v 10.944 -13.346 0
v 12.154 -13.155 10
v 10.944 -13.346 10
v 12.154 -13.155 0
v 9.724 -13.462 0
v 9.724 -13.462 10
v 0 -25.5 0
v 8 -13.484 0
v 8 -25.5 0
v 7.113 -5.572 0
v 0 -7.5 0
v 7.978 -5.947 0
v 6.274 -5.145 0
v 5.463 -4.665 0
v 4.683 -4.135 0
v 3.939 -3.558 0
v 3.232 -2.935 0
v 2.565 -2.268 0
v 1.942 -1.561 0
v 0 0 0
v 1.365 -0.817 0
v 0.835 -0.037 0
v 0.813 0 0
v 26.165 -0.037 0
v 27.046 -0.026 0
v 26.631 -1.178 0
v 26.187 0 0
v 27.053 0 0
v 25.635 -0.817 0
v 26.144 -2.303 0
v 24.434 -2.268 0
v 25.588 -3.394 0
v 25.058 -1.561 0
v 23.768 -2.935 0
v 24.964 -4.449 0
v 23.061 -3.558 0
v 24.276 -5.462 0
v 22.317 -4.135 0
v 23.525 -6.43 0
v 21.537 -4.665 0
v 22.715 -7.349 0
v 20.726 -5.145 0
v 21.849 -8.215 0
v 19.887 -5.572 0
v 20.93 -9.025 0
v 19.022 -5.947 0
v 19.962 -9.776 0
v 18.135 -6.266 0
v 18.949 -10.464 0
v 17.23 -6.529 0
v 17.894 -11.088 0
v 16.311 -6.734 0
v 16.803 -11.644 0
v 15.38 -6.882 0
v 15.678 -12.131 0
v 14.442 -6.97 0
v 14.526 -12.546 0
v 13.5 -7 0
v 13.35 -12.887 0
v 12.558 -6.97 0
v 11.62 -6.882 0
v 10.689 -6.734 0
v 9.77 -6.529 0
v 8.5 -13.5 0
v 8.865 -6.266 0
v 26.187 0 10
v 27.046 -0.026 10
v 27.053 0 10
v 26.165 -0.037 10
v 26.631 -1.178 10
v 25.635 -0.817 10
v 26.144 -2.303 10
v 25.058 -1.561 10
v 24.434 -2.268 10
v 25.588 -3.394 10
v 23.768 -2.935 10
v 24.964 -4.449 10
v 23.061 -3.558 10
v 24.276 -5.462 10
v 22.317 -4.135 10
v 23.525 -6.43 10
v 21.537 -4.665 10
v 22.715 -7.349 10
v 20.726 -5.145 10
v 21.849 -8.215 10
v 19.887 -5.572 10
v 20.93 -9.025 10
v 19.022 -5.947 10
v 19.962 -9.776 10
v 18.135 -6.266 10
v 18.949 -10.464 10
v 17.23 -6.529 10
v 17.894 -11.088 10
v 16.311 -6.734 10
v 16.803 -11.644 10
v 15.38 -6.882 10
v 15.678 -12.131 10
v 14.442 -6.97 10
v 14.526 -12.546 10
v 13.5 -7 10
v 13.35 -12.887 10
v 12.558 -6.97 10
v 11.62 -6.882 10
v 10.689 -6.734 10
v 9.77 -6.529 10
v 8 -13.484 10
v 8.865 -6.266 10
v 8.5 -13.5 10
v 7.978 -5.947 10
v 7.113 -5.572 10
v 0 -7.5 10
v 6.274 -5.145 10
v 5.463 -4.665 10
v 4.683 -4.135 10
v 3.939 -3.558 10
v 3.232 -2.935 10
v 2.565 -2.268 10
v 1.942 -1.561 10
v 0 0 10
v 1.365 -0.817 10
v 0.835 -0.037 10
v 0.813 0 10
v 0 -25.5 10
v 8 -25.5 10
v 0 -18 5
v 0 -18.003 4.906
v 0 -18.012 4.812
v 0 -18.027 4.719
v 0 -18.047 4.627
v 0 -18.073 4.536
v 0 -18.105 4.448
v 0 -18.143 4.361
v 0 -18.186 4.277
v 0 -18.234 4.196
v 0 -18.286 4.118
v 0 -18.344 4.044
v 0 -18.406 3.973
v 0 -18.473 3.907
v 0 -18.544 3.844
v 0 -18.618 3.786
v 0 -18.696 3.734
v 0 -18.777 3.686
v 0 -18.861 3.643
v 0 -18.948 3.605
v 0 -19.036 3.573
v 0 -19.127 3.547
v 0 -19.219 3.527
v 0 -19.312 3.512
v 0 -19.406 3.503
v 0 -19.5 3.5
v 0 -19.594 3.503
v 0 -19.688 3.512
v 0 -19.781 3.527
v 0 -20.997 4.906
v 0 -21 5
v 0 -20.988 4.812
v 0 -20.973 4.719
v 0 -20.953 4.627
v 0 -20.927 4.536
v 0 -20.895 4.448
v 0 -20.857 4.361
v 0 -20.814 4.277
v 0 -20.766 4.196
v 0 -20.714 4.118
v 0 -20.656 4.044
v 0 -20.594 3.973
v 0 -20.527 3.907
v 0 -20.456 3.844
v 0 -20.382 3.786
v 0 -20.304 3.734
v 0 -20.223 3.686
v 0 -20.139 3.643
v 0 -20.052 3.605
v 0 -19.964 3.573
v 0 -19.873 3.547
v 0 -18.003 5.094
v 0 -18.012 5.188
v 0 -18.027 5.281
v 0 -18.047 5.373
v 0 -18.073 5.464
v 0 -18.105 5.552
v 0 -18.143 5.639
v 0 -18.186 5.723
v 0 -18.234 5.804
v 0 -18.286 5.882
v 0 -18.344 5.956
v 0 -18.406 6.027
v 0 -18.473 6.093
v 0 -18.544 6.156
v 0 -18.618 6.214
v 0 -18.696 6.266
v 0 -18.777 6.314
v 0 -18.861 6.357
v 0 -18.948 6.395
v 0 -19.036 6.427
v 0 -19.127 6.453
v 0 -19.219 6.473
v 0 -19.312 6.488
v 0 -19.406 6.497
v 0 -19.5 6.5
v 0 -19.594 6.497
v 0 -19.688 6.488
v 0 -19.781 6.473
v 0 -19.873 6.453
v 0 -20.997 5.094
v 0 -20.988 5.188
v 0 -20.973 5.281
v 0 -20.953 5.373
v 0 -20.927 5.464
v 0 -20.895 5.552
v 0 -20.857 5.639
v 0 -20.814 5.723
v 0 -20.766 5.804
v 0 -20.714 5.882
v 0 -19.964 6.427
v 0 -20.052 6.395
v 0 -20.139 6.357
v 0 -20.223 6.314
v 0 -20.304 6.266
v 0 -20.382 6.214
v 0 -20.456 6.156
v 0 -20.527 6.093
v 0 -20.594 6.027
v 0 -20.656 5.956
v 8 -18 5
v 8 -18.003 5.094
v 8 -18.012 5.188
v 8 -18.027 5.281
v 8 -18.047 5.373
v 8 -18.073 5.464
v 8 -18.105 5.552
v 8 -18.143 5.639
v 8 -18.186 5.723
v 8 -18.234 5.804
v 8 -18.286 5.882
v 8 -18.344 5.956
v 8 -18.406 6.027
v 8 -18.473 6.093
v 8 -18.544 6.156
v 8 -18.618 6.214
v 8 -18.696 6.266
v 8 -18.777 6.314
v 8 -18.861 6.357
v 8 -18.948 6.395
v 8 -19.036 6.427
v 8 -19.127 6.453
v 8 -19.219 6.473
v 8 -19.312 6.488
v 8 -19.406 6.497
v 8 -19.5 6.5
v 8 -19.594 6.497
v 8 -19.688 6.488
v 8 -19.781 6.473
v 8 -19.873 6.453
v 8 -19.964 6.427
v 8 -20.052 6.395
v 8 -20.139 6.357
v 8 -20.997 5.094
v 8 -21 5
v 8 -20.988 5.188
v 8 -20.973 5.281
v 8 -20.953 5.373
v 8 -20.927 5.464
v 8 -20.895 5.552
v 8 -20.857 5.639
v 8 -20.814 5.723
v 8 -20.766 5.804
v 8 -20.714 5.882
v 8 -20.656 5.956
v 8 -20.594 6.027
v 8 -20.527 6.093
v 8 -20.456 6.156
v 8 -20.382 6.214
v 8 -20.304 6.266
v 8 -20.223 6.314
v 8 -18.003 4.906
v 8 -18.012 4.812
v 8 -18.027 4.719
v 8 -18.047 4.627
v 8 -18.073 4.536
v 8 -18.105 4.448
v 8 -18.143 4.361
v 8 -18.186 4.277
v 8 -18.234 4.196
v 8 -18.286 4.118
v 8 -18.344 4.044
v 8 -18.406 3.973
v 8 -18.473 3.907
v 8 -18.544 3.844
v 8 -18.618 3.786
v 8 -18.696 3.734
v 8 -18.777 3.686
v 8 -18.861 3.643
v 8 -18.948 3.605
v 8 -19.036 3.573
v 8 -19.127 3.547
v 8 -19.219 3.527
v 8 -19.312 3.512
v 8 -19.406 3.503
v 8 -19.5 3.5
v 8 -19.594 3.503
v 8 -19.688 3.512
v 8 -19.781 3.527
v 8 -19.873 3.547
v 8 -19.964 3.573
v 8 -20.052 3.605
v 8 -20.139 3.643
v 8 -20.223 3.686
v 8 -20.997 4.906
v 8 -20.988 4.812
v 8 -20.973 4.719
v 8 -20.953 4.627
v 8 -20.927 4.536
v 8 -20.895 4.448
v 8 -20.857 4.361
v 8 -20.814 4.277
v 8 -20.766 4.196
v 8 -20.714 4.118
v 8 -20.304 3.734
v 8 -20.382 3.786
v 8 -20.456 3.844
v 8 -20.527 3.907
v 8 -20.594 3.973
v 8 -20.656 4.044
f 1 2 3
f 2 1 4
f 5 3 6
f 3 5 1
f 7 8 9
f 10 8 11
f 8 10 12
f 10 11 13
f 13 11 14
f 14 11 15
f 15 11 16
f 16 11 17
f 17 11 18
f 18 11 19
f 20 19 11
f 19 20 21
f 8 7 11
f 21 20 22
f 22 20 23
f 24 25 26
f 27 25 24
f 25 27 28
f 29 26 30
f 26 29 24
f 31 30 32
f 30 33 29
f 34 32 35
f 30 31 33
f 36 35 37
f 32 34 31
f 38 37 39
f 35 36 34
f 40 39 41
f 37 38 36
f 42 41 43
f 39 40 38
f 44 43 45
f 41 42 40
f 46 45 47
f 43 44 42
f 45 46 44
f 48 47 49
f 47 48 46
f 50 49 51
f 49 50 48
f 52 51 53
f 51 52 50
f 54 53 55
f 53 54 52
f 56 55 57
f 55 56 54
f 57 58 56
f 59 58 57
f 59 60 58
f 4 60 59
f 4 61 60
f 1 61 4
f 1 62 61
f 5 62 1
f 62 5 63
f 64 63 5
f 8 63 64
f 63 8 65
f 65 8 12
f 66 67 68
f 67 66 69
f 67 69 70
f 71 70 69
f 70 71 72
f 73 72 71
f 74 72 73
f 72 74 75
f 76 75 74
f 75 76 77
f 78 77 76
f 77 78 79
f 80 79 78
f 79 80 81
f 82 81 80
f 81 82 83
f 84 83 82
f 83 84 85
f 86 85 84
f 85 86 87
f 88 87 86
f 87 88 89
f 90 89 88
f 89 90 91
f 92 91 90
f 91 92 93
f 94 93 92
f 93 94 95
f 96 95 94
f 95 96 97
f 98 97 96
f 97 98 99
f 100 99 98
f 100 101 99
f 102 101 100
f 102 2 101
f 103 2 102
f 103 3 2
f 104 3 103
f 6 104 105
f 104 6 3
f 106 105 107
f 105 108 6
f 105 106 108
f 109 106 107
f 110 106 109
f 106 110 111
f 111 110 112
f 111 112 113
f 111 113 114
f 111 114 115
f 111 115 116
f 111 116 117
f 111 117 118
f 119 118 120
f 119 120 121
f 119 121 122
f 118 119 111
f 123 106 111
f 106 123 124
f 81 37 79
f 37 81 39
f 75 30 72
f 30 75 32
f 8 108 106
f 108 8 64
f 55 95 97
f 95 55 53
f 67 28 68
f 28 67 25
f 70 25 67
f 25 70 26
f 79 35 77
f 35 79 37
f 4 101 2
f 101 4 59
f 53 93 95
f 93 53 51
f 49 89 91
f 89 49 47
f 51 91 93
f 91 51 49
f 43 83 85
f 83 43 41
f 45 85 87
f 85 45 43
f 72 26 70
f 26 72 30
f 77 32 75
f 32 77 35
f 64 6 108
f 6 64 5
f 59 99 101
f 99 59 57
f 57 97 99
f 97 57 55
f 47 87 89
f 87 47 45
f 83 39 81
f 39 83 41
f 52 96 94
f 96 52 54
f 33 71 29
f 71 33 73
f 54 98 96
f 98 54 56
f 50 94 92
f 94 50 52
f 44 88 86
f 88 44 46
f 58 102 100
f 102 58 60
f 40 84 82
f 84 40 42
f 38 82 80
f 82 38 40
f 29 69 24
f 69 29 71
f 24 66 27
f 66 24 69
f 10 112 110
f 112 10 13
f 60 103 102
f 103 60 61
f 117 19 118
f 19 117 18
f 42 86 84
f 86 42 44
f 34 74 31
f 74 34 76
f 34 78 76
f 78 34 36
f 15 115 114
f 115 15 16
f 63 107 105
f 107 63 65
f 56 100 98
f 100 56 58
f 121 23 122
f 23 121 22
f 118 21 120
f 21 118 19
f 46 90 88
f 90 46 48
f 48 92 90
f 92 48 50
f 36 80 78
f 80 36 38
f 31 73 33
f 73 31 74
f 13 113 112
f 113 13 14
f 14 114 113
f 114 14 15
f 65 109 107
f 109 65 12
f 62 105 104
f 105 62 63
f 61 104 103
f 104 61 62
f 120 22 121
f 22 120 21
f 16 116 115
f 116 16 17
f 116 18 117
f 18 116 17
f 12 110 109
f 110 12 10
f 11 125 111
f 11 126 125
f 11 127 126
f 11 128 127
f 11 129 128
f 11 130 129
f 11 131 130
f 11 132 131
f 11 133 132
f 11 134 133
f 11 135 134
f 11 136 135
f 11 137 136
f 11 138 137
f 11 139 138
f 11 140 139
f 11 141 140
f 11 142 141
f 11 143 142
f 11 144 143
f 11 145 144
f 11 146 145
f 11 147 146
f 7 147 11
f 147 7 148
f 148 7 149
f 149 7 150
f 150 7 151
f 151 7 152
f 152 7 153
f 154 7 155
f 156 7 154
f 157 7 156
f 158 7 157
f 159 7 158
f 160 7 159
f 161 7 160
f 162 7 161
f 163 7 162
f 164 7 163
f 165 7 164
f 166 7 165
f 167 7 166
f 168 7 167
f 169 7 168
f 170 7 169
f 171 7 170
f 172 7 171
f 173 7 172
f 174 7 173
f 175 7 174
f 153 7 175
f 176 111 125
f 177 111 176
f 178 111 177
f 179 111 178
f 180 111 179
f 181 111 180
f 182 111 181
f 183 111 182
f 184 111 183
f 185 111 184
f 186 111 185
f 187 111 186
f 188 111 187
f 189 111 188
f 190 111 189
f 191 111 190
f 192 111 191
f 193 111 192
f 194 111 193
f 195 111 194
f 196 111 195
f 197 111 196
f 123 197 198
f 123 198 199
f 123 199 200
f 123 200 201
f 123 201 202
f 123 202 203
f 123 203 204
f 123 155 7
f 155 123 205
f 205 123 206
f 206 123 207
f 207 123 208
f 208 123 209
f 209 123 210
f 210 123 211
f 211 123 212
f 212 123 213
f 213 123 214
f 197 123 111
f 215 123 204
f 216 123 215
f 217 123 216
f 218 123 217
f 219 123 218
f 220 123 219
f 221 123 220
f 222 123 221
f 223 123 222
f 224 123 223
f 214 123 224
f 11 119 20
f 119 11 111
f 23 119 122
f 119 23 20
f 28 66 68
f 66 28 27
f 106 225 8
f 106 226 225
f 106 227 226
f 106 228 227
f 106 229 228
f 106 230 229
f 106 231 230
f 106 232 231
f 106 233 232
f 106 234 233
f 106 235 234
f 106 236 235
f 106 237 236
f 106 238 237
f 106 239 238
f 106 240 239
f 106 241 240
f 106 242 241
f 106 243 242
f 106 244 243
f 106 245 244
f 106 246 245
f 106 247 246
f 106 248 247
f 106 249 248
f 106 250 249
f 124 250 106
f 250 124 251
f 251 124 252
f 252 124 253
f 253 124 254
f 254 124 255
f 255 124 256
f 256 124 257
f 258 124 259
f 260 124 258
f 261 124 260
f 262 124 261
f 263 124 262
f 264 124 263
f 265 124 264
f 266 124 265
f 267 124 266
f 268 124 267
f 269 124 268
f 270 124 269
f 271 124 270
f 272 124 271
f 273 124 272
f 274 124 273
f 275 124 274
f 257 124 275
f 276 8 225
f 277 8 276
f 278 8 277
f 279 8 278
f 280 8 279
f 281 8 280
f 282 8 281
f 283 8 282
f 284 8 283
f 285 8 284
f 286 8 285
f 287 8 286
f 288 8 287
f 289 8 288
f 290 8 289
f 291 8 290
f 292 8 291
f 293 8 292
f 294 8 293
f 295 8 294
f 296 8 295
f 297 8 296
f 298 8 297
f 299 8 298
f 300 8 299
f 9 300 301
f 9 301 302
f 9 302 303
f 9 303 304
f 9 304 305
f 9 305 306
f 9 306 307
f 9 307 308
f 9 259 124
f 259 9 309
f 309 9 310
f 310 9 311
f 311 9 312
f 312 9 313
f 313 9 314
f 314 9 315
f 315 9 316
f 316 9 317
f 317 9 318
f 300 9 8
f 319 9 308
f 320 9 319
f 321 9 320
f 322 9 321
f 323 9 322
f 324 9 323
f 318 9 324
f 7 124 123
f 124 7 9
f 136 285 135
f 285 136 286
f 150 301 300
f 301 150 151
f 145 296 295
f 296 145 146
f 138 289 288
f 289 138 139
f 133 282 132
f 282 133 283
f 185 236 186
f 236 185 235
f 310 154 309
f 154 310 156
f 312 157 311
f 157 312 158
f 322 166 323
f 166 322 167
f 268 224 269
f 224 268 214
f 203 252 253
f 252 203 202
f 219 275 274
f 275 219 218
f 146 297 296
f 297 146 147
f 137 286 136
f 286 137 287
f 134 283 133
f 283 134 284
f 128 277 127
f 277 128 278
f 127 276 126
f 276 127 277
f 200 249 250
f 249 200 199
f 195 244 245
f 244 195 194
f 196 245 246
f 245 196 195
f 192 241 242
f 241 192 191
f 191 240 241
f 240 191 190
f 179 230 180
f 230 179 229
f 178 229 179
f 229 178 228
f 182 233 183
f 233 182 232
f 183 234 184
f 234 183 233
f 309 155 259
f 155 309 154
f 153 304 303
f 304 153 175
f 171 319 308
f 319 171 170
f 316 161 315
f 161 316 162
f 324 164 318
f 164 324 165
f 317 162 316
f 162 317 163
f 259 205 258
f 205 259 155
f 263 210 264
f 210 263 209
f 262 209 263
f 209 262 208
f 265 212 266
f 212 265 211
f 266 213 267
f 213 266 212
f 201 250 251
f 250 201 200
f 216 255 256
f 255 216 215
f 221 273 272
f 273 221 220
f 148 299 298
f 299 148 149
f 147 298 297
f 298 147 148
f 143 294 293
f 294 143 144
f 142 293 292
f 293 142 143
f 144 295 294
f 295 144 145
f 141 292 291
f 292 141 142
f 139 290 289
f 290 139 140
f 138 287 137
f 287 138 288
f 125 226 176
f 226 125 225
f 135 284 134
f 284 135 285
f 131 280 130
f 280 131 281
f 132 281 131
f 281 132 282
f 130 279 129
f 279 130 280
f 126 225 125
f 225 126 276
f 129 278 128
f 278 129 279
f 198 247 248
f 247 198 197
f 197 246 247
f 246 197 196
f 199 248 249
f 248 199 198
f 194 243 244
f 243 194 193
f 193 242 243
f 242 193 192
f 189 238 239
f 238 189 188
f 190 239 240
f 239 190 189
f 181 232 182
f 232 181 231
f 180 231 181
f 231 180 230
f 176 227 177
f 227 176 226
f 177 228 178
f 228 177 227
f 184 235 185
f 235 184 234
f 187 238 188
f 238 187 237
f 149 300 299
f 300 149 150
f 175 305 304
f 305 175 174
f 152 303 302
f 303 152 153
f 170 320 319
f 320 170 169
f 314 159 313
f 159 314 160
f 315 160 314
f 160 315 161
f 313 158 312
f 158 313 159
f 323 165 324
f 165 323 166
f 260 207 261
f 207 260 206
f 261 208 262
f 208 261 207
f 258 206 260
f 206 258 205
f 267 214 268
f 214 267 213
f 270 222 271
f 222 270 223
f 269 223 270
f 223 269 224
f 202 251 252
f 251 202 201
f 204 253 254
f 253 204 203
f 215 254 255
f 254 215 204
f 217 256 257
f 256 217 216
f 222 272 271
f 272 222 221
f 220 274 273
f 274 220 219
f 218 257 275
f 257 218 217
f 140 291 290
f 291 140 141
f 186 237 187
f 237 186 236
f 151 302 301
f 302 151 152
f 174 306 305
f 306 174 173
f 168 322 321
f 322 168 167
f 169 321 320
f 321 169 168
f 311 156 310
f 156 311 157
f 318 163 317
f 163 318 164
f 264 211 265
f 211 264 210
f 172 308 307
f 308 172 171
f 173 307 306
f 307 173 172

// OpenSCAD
$fn = 100;

// A very roughly designed trigger for the wand tip.
// Eyeballed from http://i961.photobucket.com/albums/ae97/Doug_Solo/2016%20Ghostbusters%20Venkman%20Hero%20Proton%20Pack/thrower_tip_compressed_banjo_zpslgass7nw.jpg (http://www.therpf.com/showthread.php?t=259249)

trigger_depth = 10;

difference() {
    trigger();
    
    // screw hole
    translate([-0.1,-25.5+6,trigger_depth/2])
    rotate([0,90,0])
    cylinder(d=3,h=12.2);
}
//translate([0,-25.5,0])
//color("blue") cube([8,12,trigger_depth]);
module trigger() {
    difference() {
        translate([26*0.25,0,0])
        difference() {
            translate([2,6,0])
            cylinder(d=26*1.5,h=trigger_depth);
            translate([7,8,-0.1])
            cylinder(d=30, h=trigger_depth+0.2);
        }
        translate([-15,-30,-0.1])
        cube([15,60,trigger_depth+0.2]);
        translate([-0.1,0,-0.1])
        cube([40,40,trigger_depth+0.2]);
    }

    translate([0,-25.5,0])
    cube([8,18,trigger_depth]);
}
